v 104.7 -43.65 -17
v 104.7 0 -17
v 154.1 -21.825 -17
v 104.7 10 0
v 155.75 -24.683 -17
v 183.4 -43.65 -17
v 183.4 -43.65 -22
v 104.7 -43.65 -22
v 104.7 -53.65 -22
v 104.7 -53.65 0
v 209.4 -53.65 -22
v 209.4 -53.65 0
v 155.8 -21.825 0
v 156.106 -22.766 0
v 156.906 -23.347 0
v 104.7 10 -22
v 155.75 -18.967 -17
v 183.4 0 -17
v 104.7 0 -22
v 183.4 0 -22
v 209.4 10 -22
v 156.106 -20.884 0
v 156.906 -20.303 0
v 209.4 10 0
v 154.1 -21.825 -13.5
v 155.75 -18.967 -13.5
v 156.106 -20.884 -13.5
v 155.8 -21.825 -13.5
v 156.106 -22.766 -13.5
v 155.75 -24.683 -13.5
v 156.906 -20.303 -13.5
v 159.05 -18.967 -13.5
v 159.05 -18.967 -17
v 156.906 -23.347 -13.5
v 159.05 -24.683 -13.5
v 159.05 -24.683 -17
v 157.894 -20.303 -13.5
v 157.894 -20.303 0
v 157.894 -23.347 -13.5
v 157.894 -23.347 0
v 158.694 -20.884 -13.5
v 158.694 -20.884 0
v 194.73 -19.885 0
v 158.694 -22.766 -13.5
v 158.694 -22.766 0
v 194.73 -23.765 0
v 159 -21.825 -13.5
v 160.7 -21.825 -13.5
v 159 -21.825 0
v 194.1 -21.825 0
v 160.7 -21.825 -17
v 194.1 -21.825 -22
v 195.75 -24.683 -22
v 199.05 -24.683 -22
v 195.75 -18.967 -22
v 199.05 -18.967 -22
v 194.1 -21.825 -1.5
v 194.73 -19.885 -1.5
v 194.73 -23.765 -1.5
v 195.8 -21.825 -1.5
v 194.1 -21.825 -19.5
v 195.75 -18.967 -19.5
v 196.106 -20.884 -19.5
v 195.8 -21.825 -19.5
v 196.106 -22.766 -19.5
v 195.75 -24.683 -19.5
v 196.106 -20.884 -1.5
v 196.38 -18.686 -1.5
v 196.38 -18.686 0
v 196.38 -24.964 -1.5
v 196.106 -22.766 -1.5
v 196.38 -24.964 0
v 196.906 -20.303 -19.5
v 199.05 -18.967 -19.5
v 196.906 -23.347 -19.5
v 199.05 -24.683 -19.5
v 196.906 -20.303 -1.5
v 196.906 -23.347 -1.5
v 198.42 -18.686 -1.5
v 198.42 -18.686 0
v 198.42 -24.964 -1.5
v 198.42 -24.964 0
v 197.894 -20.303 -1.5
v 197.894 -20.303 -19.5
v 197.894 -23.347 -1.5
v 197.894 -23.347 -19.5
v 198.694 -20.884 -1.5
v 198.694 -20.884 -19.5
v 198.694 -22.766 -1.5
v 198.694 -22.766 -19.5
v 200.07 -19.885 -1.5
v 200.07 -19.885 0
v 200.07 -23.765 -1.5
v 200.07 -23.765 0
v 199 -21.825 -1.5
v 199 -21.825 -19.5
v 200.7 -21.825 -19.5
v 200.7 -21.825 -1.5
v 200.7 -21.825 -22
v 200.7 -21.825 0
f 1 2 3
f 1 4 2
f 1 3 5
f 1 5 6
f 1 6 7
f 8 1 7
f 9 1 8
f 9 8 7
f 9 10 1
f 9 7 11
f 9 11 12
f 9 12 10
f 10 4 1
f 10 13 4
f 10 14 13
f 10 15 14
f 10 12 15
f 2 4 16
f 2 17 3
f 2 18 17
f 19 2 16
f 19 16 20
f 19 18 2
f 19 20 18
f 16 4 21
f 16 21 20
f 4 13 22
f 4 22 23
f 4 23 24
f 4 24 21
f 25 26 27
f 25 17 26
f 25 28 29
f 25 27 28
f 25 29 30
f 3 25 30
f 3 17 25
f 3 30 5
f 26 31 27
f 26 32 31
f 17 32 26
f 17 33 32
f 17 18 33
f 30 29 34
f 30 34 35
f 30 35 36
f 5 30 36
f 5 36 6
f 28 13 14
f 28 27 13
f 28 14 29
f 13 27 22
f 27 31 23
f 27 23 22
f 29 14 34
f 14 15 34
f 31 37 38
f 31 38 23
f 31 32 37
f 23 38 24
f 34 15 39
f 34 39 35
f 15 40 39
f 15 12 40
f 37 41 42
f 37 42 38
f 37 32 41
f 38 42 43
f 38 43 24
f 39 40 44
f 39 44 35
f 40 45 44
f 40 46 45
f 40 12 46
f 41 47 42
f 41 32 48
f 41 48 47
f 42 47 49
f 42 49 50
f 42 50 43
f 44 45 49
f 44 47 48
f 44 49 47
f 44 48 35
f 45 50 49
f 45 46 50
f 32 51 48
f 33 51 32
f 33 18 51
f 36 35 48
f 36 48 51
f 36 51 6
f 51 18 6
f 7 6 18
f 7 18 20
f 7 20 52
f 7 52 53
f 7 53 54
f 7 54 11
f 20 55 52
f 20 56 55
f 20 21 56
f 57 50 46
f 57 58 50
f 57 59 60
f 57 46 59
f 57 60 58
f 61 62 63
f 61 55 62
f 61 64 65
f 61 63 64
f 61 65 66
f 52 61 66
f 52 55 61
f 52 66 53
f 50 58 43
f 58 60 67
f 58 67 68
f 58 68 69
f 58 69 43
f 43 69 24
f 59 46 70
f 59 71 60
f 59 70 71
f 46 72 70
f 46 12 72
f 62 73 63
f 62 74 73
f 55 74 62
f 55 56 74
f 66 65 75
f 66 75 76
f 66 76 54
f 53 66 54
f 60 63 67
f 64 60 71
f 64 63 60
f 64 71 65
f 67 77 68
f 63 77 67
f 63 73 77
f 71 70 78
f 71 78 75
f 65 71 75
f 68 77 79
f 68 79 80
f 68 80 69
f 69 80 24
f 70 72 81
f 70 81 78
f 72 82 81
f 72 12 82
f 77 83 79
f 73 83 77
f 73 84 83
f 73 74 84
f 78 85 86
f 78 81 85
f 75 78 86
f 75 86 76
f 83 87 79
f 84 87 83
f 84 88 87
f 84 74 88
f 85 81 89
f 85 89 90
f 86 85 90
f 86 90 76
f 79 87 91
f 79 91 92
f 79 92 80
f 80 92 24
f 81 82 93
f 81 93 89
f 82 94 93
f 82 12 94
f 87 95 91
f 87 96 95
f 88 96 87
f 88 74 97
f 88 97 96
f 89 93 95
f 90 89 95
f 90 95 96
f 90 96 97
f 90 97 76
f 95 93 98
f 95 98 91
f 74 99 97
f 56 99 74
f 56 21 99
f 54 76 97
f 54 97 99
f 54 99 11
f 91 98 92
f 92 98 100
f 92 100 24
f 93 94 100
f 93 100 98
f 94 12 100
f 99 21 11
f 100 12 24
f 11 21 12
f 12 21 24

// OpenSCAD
// file: ../888_1019.scad
include <../parameters.scad>
draft = true;

accumulator_spacer_thickness = 22;  // 22mm napocitano na pouziti M3x30 sroubou
accumulator_spacer_sink = sink_of_accumulator;
accumulator_spacer_move = 40; // posuv smerem dopredu
accumulator_spacer_wall = 10;
accumulator_spacer_wall_end = 25;
accumulator_spacer_width = height_of_accumulator + 2*accumulator_spacer_wall;
accumulator_spacer_length = width_of_accumulator + accumulator_spacer_move + 2*accumulator_spacer_wall_end;

accumulator_threads_distance = (width_of_accumulator/2 + accumulator_holder_width/2 + accumulator_holder_thickness/2)*2;


module 888_1019(draft){
rotate([0, 180, 180])
    difference(){
        translate([-accumulator_spacer_wall, -accumulator_spacer_wall, 0])
            cube([accumulator_spacer_length, accumulator_spacer_width, accumulator_spacer_thickness]);



      //akumulátor
      translate([accumulator_spacer_move + accumulator_threads_distance/2 - width_of_accumulator/2, 0, accumulator_spacer_thickness-accumulator_spacer_sink])
        cube([width_of_accumulator, height_of_accumulator, depth_of_accumulator]);


      //for(x=[0, accumulator_threads_distance, accumulator_spacer_move, accumulator_spacer_move + accumulator_threads_distance]){
      #translate([0, 0, 0])
          union (){

            //šrouby pro připevnění akumulátorů
            translate([0, height_of_accumulator/2, 0])
                cylinder(h = 100, r = M3_screw_diameter/2, $fn = draft ? 10 : 20, center = true);

             // díry pro matky pro sroub drzici obruce pres baterie..
             translate([0, height_of_accumulator/2, accumulator_spacer_thickness])
                cylinder(h = 5, d = M3_nut_diameter, $fn = 6, center = true);
          }

    translate([accumulator_threads_distance, 0, 0])
        #union (){

            //šrouby pro připevnění akumulátorů
            translate([0, height_of_accumulator/2, 0])
                cylinder(h = 100, r = M3_screw_diameter/2, $fn = draft ? 10 : 20, center = true);

              // díry pro matky pro sroub drzici obruce pres baterie..
              translate([0, height_of_accumulator/2, accumulator_spacer_thickness - accumulator_spacer_sink-1])
                  cylinder(h = 5, d = M3_nut_diameter, $fn = 6, center = true);
          }


          #translate([accumulator_spacer_move, 0, 0])
              union (){

                //šrouby pro připevnění akumulátorů
                  translate([0, height_of_accumulator/2, 0])
                      cylinder(h = 100, r = M3_screw_diameter/2, $fn = draft ? 10 : 20, center = true);

                  //díry pro zapuštění hlaviček šroubů
                  translate([0, height_of_accumulator/2, 0])
                      cylinder(h = M3_screw_head_height, d = M3_nut_diameter, $fn = draft ? 10 : 20, center = true);

                  translate([0, height_of_accumulator/2, 0])
                      cylinder(h = M3_screw_head_height, d = M3_nut_diameter, $fn = draft ? 10 : 20, center = true);

              // díry pro matky pro sroub drzici obruce pres baterie..
                  translate([0, height_of_accumulator/2, accumulator_spacer_thickness])
                      cylinder(h = 5, d = M3_nut_diameter, $fn = 6, center = true);
              }

          #translate([accumulator_spacer_move + accumulator_threads_distance, 0, 0])
              union (){

                //šrouby pro připevnění akumulátorů
                  translate([0, height_of_accumulator/2, 0])
                      cylinder(h = 100, r = M3_screw_diameter/2, $fn = draft ? 10 : 20, center = true);


                  //díry pro zapuštění hlaviček šroubů
                  translate([0, height_of_accumulator/2, 0])
                      cylinder(h = M3_screw_head_height, d = M3_nut_diameter, $fn = draft ? 10 : 20, center = true);

                  translate([0, height_of_accumulator/2, 0])
                      cylinder(h = M3_screw_head_height, d = M3_nut_diameter, $fn = draft ? 10 : 20, center = true);

              // díry pro matky pro sroub drzici obruce pres baterie..
                  translate([0, height_of_accumulator/2, accumulator_spacer_thickness])
                      cylinder(h = 5, d = M3_nut_diameter, $fn = 6, center = true);
              }




    }
}


888_1019(draft);
// main file
include <../../parameters.scad>
use <../888_1019.scad>

draft = false;

difference(){
    888_1019(1, draft);
  #translate([(width_of_accumulator+40+40)/2-500, -200, -200])
    cube(500);
}
